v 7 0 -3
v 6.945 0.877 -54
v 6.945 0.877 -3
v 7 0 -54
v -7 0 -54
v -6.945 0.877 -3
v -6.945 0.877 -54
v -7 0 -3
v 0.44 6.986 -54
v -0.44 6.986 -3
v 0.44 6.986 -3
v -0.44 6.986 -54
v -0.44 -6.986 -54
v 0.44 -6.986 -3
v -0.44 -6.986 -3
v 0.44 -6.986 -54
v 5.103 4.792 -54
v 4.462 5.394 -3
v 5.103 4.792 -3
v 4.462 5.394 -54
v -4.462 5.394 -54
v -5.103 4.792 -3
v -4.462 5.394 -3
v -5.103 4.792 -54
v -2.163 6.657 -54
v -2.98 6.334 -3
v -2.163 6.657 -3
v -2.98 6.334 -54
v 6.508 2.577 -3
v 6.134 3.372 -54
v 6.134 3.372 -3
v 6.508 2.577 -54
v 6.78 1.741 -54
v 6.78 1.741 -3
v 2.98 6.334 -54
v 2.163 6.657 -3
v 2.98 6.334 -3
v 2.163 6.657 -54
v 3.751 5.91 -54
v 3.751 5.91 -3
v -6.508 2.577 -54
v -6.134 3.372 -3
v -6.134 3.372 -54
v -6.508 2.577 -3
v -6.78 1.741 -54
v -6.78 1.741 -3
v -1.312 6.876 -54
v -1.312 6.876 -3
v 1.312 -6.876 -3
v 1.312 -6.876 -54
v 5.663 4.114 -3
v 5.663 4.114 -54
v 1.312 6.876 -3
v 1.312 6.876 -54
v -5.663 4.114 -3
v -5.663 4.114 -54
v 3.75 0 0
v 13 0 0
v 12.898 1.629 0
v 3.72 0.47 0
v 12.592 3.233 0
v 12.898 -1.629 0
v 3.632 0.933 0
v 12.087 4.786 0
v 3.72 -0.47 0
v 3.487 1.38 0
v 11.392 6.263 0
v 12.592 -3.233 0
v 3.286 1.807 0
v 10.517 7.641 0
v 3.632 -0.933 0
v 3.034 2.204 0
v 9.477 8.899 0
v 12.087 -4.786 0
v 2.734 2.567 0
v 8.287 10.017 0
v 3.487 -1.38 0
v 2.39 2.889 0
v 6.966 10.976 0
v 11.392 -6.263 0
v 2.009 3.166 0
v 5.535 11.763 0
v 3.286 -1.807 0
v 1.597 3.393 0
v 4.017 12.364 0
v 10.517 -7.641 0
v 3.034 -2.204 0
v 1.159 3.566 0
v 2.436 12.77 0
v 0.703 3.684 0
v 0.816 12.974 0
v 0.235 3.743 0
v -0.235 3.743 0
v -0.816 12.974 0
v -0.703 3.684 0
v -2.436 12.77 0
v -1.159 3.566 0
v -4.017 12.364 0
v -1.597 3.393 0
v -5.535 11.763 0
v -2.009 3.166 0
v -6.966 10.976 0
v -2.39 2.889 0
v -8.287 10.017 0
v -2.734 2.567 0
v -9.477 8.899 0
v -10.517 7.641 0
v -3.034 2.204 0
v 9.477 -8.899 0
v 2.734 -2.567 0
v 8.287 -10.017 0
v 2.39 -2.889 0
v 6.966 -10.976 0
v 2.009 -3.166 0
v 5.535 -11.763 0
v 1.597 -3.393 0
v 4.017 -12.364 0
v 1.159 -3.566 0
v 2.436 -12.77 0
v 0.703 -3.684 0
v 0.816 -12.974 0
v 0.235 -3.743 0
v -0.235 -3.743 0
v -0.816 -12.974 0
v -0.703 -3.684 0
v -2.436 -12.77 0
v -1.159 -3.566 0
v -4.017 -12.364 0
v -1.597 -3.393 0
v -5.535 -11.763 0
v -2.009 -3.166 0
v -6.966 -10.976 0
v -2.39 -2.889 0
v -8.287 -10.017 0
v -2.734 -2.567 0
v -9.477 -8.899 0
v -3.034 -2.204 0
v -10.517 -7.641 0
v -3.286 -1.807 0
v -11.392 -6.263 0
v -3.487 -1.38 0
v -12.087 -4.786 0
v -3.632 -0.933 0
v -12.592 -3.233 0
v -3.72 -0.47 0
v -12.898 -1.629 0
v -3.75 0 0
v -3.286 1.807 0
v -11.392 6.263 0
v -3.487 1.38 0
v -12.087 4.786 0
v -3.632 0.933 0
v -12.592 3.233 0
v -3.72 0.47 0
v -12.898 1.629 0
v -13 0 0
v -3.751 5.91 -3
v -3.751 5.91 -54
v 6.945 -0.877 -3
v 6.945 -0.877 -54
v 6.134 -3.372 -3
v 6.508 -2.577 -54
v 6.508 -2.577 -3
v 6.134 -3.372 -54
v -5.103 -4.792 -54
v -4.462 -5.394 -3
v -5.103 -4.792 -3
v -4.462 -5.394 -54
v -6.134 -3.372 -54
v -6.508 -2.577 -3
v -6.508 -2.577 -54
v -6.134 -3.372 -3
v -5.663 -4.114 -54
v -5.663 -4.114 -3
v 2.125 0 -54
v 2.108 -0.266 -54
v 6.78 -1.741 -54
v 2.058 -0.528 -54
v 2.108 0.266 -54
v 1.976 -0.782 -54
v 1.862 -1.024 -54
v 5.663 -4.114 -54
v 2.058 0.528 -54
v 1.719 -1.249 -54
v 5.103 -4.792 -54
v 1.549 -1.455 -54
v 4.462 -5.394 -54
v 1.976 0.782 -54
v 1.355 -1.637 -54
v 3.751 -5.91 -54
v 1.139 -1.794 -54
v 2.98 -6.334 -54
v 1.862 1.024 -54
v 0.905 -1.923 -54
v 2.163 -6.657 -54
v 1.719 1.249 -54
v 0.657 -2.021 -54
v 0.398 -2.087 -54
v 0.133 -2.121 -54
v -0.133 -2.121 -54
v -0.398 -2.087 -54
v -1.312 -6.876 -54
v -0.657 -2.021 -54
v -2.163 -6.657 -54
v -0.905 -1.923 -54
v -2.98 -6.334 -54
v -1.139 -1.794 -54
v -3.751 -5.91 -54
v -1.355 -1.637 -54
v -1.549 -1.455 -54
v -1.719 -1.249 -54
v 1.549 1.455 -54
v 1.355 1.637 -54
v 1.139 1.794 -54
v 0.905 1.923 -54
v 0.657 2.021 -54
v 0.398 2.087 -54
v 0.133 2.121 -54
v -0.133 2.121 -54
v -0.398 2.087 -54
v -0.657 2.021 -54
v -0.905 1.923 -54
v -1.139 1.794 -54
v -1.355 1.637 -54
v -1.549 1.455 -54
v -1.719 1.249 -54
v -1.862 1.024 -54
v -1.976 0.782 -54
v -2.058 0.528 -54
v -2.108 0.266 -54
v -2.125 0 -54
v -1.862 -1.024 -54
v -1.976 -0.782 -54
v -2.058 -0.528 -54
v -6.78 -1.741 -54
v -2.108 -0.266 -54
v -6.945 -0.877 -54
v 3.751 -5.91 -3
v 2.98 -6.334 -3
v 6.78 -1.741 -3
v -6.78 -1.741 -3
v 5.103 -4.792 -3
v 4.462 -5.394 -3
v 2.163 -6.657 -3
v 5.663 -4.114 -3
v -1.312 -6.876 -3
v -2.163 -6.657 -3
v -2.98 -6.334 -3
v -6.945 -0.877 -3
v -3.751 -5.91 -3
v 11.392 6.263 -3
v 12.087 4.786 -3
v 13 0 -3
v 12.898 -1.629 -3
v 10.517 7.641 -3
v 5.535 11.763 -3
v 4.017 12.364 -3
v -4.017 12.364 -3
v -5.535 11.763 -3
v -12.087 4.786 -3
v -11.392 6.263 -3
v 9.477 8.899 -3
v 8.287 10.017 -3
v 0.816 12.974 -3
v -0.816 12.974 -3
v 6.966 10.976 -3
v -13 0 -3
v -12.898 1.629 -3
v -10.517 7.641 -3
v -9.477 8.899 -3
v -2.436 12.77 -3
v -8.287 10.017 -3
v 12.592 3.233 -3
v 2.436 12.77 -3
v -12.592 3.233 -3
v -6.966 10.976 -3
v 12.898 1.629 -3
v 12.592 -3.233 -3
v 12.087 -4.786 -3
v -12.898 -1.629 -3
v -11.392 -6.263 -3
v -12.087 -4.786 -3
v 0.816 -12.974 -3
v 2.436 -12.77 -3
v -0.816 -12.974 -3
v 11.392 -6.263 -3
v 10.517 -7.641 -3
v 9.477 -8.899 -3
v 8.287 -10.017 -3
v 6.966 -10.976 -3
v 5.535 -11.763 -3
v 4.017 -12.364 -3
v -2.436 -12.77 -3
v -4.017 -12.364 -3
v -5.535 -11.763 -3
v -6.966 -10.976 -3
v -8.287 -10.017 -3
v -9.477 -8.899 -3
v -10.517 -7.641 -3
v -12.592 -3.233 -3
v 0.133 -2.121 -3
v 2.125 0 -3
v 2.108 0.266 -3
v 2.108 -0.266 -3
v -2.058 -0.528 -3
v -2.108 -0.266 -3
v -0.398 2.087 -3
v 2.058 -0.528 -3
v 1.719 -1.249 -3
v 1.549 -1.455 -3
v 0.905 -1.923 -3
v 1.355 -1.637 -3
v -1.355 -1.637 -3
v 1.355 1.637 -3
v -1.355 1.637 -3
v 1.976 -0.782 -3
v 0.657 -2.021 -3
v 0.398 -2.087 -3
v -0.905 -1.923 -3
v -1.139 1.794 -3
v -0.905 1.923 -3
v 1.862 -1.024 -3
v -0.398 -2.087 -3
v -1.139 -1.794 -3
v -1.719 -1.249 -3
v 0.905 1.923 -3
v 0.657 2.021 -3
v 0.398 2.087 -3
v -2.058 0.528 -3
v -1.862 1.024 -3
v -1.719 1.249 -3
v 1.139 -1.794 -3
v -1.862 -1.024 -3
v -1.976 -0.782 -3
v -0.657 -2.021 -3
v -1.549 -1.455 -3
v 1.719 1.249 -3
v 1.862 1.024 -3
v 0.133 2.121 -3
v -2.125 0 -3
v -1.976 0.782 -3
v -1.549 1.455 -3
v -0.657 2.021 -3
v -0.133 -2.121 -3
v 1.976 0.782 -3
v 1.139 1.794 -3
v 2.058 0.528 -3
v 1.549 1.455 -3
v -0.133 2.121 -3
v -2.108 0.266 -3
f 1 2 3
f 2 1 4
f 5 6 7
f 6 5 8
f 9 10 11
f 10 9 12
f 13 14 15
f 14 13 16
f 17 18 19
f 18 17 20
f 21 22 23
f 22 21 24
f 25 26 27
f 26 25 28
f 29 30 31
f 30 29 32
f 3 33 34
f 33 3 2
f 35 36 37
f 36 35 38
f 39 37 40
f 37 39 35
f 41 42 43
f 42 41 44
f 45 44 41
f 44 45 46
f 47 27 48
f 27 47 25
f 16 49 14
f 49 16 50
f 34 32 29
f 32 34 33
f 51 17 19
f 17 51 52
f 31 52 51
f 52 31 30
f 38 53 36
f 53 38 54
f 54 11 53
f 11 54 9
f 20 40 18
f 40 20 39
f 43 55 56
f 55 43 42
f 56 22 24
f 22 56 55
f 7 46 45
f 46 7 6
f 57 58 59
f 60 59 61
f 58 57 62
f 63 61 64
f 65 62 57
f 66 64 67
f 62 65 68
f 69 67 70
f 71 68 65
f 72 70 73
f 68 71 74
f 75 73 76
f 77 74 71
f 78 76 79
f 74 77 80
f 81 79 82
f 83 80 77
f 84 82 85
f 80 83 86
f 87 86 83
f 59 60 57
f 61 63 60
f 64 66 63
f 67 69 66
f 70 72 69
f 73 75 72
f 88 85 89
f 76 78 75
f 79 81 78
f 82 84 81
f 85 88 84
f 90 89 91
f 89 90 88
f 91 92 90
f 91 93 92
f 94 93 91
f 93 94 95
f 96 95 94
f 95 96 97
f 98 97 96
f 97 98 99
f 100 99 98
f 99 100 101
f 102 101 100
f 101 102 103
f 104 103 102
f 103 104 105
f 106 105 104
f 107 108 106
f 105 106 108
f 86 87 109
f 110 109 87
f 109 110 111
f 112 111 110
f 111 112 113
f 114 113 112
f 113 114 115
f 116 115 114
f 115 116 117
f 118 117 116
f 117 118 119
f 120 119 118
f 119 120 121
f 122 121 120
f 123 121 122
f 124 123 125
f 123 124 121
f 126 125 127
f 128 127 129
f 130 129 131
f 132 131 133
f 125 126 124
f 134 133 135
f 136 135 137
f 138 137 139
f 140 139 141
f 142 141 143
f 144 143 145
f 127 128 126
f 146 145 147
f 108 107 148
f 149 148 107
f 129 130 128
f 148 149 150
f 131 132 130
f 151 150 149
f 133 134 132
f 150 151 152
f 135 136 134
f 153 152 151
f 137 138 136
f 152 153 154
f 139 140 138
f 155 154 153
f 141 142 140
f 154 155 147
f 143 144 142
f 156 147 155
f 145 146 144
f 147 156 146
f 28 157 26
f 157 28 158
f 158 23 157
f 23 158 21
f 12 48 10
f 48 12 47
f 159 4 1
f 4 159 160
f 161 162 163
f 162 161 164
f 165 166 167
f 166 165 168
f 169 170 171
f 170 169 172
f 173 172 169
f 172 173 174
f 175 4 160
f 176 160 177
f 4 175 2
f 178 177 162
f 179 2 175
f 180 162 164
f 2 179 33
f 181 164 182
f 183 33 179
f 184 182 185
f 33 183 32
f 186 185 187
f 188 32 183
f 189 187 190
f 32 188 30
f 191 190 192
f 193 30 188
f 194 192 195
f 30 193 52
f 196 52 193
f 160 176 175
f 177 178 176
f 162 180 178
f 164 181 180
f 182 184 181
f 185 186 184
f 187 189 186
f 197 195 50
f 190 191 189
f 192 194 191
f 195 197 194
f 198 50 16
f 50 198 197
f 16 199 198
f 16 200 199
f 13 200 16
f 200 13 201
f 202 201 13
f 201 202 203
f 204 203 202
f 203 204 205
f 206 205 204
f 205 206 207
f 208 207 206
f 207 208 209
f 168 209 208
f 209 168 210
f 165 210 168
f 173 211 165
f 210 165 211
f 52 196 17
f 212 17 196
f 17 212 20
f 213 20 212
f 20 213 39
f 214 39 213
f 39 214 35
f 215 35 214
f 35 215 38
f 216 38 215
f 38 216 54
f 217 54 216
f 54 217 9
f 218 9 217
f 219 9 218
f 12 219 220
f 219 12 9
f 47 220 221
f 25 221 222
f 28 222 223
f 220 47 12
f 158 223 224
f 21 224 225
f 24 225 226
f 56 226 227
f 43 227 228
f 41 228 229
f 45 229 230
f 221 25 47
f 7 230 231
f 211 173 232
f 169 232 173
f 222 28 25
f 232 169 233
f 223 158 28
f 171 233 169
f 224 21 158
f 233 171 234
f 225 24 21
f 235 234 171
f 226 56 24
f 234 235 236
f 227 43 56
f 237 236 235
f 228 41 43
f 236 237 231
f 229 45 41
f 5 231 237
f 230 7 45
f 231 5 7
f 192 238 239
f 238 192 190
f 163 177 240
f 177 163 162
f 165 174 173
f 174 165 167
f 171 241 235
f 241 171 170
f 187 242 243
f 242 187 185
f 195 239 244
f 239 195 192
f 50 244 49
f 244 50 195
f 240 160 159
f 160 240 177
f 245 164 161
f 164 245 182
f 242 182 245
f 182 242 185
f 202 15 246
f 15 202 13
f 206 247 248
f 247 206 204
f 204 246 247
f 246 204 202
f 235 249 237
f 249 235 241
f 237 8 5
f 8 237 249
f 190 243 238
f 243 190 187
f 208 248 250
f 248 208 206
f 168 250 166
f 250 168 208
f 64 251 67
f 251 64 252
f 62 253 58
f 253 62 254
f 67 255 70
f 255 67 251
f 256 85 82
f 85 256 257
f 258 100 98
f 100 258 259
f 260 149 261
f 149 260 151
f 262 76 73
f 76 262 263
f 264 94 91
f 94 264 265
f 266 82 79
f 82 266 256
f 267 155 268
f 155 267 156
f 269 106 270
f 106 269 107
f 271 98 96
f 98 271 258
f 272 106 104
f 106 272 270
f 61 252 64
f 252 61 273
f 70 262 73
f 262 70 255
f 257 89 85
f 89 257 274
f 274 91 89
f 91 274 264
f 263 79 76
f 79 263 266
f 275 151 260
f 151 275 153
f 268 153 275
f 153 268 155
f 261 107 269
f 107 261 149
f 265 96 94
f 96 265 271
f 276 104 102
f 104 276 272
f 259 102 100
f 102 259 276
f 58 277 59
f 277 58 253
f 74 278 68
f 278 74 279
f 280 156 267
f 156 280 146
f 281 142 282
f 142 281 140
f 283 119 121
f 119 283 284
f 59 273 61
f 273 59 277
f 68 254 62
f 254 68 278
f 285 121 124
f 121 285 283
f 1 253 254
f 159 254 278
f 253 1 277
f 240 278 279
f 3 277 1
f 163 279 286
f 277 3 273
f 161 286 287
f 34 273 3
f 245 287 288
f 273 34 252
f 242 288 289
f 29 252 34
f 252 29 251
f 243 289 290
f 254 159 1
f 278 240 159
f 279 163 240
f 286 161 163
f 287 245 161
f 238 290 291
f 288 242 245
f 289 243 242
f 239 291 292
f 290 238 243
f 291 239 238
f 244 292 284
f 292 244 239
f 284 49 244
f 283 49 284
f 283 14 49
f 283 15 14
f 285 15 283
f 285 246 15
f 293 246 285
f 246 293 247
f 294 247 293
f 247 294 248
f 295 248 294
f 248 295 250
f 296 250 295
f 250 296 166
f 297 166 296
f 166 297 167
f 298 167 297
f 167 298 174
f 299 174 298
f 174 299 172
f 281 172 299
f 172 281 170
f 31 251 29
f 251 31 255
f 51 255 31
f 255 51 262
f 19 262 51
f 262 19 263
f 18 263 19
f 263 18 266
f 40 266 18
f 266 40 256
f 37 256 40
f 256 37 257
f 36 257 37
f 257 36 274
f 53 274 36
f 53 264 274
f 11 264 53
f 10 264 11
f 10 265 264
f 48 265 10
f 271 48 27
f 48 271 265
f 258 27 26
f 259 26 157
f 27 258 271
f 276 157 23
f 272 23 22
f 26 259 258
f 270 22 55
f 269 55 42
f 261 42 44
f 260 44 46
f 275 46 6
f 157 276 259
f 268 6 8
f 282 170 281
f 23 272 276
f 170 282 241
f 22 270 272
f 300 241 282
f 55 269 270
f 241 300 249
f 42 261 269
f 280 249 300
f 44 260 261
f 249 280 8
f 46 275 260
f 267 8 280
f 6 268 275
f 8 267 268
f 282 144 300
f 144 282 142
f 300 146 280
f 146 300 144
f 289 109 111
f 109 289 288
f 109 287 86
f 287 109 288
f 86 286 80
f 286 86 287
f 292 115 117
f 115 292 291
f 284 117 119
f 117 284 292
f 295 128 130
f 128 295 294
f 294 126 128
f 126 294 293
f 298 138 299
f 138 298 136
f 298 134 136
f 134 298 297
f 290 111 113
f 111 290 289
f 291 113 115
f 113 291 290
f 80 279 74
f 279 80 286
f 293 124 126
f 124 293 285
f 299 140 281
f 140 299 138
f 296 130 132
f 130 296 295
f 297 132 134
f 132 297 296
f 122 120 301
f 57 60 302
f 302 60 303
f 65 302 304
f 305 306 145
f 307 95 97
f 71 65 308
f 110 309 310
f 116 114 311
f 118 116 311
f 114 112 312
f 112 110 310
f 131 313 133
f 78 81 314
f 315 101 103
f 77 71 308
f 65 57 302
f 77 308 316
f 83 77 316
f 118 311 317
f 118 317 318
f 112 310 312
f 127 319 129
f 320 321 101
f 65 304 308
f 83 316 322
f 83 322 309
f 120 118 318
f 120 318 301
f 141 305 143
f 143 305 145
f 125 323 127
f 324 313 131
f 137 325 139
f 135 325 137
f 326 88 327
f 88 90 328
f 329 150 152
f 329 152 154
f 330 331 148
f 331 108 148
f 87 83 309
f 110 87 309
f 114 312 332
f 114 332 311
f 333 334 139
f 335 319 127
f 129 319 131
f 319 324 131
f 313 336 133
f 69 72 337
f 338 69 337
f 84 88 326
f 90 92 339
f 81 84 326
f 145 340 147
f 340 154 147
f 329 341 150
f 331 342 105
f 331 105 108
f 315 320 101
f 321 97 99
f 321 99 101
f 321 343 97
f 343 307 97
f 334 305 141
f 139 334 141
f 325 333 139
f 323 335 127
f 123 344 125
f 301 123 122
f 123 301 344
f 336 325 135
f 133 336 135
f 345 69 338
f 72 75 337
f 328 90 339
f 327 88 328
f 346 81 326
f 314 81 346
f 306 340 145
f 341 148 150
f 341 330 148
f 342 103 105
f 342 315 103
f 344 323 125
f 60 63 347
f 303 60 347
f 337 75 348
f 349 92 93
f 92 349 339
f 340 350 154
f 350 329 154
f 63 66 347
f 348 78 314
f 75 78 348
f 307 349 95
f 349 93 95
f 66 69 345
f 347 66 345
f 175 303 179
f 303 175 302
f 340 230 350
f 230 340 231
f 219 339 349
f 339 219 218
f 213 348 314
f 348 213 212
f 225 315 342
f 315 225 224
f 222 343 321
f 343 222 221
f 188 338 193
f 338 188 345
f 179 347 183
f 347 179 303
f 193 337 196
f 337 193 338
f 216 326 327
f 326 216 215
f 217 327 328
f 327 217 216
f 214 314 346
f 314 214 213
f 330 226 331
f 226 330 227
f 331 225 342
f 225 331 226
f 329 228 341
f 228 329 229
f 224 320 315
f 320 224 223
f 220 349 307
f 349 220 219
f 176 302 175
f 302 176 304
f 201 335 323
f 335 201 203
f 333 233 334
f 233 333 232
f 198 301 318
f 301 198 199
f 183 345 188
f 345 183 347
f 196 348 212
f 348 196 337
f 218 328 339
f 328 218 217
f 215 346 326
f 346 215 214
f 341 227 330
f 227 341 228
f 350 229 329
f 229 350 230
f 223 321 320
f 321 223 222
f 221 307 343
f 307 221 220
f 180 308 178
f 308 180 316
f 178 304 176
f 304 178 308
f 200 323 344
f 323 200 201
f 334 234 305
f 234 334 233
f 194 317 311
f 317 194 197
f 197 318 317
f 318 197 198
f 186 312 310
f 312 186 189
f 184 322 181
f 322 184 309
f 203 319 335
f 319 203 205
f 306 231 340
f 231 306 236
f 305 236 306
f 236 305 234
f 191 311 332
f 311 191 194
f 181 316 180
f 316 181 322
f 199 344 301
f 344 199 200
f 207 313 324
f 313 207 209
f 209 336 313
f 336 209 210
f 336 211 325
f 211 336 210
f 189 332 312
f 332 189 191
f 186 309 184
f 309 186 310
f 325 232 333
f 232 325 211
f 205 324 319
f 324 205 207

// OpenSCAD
$fn = 50;


difference() {
	union() {
		translate(v = [0, 0, -54.0000000000]) {
			cylinder(h = 54, r = 7.0000000000);
		}
		translate(v = [0, 0, -3.0000000000]) {
			cylinder(h = 3, r = 13.0000000000);
		}
	}
	union() {
		translate(v = [0, 0, 0]) {
			rotate(a = [0, 0, 0]) {
				difference() {
					union() {
						#translate(v = [0, 0, -54.0000000000]) {
							cylinder(h = 54, r = 2.0000000000);
						}
						#translate(v = [0, 0, -3]) {
							cylinder(h = 3, r = 7.0000000000, r1 = 2.1250000000, r2 = 3.7500000000);
						}
						#translate(v = [0, 0, -54.0000000000]) {
							cylinder(h = 54, r = 2.1250000000);
						}
						#translate(v = [0, 0, -54.0000000000]) {
							cylinder(h = 54, r = 2.0000000000);
						}
					}
					union();
				}
			}
		}
	}
}
